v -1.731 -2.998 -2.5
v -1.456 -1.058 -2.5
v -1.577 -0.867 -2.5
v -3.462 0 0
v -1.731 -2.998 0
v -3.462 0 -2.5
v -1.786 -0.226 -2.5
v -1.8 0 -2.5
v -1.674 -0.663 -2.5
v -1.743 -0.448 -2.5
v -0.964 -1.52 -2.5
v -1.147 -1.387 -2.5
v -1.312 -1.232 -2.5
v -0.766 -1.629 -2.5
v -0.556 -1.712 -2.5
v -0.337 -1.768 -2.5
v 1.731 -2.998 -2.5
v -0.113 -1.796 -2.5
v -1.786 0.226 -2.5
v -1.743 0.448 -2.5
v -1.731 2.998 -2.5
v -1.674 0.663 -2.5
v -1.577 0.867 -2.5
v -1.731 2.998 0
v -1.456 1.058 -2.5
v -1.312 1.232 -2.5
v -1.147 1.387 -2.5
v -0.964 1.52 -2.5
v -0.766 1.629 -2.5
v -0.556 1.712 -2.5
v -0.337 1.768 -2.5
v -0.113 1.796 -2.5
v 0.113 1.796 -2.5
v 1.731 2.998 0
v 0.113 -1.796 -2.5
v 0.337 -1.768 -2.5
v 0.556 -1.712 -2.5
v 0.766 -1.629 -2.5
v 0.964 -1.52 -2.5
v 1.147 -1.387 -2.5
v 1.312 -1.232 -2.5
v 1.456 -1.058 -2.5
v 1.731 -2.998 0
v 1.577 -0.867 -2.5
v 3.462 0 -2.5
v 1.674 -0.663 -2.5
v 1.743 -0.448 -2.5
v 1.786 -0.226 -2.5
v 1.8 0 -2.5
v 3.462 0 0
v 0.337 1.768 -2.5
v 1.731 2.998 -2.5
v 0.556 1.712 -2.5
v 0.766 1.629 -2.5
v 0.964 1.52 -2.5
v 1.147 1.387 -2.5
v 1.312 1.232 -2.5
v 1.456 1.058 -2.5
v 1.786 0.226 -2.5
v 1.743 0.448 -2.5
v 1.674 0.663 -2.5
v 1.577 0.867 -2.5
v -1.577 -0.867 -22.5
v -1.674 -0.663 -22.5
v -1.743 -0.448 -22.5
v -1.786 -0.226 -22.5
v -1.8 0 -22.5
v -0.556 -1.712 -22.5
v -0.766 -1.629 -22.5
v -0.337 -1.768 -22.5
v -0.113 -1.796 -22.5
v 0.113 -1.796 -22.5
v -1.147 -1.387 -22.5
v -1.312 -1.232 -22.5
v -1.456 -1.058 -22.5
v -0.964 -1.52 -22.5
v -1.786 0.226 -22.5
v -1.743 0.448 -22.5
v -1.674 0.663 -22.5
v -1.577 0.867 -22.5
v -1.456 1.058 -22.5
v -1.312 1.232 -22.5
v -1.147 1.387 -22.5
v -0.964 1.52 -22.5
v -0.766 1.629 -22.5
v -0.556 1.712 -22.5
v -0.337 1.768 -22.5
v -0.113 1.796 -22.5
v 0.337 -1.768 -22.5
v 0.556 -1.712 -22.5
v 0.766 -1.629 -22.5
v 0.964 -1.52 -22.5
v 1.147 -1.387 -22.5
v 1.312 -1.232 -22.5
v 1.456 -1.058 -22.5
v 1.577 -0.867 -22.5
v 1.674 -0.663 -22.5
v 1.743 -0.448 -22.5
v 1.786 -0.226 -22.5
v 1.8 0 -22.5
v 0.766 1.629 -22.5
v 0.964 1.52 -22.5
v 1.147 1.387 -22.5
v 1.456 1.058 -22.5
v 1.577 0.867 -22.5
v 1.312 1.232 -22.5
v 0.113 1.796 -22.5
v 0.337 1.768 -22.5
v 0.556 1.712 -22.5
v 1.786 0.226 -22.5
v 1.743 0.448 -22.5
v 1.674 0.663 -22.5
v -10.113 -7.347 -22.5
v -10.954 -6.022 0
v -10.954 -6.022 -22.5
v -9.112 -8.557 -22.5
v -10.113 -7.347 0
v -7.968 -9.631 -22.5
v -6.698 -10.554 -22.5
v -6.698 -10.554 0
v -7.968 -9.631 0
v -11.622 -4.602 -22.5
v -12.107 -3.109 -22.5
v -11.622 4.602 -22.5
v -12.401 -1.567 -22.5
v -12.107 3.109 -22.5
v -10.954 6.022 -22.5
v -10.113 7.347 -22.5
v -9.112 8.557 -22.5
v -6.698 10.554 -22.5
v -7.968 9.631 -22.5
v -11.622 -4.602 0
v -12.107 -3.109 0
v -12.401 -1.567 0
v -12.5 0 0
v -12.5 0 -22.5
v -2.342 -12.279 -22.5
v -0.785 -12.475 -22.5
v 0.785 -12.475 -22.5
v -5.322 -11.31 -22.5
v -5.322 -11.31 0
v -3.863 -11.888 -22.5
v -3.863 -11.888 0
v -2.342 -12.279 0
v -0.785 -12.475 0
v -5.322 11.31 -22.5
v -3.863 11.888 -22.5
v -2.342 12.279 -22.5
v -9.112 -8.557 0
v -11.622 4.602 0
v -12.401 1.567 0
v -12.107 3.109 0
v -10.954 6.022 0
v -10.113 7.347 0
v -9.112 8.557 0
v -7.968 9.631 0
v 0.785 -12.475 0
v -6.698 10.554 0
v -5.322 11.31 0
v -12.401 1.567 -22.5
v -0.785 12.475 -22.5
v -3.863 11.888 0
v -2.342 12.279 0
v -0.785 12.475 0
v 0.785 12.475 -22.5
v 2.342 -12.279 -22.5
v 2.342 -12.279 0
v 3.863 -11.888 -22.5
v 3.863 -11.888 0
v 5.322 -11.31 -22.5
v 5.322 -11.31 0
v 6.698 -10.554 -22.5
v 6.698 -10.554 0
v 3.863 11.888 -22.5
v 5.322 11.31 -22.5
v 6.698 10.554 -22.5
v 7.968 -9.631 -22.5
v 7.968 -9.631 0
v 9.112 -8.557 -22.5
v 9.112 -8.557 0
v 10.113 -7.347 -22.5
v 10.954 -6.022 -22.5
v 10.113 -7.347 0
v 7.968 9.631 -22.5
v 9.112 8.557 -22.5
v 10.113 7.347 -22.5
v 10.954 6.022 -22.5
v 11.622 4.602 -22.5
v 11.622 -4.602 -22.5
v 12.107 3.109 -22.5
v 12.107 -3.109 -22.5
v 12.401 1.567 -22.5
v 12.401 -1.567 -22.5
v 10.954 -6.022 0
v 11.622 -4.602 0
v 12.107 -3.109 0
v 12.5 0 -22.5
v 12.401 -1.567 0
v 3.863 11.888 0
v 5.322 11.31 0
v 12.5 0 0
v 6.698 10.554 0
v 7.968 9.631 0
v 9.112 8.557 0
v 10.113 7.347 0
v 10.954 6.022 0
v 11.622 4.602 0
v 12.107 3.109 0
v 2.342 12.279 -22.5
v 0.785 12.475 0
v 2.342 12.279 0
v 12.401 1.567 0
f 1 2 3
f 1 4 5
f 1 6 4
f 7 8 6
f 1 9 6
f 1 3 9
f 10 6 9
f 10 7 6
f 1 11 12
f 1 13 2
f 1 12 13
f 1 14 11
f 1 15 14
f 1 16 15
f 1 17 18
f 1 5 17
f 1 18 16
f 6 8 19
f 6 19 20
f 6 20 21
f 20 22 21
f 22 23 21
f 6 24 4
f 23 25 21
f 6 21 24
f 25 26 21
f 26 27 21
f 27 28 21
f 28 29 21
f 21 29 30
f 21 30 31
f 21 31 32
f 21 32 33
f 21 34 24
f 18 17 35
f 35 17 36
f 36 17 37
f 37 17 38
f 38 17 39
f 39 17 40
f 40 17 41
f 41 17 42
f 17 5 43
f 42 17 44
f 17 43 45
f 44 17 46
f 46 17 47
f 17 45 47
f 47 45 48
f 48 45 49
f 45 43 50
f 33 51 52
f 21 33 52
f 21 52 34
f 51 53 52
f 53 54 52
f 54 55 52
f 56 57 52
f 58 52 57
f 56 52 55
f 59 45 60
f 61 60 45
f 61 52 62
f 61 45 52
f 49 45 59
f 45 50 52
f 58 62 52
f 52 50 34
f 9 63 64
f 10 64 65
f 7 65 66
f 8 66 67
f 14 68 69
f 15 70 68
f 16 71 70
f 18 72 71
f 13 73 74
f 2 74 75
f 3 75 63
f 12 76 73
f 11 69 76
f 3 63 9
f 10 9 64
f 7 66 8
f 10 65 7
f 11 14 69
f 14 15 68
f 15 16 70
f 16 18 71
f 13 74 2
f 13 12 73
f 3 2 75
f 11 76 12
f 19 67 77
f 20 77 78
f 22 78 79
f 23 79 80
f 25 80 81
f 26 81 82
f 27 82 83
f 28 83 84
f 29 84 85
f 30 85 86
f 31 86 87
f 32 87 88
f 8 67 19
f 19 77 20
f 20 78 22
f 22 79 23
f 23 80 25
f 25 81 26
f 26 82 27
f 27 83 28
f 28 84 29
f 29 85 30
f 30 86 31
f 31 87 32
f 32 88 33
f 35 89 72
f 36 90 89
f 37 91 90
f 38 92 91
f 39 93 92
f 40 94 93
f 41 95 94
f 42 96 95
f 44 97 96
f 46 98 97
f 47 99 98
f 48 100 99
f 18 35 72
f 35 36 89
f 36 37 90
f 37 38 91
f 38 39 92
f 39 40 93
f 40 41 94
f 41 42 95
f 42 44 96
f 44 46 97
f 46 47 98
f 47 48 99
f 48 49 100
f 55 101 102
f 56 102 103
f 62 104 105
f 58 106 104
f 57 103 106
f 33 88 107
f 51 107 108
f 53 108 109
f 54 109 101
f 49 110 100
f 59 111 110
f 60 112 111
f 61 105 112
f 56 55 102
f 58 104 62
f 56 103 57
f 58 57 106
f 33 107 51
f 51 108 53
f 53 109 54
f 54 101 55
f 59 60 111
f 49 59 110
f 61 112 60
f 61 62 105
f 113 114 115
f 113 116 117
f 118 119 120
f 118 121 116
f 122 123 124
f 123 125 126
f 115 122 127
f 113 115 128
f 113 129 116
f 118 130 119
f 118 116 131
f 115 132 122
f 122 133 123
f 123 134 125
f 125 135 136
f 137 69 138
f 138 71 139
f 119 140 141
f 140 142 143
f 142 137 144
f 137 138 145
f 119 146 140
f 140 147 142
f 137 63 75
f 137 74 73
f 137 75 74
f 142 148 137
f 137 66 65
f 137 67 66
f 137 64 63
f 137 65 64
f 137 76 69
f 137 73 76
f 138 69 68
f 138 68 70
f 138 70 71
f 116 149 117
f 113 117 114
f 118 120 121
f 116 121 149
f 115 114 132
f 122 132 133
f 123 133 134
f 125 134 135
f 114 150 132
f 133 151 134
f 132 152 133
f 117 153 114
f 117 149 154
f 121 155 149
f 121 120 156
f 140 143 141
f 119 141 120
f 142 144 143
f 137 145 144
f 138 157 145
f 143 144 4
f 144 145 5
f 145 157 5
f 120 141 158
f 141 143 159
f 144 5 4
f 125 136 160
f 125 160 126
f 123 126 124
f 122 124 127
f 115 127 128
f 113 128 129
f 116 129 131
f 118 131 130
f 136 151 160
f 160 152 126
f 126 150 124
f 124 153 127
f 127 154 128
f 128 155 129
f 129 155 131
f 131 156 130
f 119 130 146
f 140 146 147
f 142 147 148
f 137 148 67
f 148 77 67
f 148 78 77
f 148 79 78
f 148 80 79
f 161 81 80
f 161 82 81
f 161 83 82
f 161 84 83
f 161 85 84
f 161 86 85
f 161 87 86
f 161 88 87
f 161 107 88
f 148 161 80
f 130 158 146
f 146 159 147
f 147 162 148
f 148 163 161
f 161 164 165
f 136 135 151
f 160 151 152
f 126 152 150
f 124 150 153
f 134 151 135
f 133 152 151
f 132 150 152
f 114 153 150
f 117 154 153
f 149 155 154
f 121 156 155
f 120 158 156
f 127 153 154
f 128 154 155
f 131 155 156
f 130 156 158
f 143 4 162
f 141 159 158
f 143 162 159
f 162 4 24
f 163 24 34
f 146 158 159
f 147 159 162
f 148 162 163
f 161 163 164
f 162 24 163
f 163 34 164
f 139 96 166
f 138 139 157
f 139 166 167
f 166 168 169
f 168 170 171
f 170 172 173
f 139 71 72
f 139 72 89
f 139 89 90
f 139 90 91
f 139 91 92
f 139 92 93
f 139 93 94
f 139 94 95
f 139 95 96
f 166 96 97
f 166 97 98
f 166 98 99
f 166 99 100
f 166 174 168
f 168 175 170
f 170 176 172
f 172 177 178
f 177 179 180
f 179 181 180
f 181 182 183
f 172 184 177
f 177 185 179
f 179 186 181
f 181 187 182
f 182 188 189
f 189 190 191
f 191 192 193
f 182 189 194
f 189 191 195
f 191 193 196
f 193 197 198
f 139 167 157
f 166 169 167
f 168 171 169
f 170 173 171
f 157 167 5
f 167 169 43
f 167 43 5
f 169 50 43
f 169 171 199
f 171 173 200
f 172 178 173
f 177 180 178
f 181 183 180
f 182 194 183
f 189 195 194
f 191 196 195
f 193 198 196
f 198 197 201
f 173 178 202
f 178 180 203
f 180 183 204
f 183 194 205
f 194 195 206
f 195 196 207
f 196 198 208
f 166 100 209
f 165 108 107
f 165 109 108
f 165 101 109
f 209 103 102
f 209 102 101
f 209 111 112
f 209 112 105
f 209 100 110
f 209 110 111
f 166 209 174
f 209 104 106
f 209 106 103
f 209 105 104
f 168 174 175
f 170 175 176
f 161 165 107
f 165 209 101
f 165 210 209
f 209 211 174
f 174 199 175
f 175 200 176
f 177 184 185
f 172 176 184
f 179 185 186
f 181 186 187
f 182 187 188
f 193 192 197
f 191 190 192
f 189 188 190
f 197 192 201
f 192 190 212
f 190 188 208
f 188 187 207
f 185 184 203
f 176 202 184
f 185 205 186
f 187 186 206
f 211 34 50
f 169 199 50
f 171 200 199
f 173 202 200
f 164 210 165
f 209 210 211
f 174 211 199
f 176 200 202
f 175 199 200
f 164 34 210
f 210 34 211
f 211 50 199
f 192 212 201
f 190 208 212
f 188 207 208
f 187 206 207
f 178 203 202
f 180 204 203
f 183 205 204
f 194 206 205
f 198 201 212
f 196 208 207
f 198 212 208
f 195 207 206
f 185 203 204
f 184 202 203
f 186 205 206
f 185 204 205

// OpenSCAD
$fn = 50;

difference() {
	union() {
		translate(v = [0, 0, -22.5]) {
			cylinder(h = 22.5, r = 12.5);
		}
	}
	union() {
		translate(v = [0, 0, 0]) {
			rotate(a = [0, 0, 0]) {
				difference() {
					union() {
						translate(v = [0, 0, -2.5]) {
							linear_extrude(height = 2.5) {
								polygon(points = [[3.4619999999999997, 0.0], [1.7310000000000003, 2.9981799479017264], [-1.7309999999999992, 2.9981799479017264], [-3.4619999999999997, 4.2397272186481365e-16], [-1.7310000000000014, -2.998179947901726], [1.7309999999999977, -2.9981799479017277]]);
							}
						}
					}
					union();
				}
			}
		}
		#translate(v = [0, 0, -100.0]) {
			cylinder(h = 200, r = 1.8);
		}
	}
}
